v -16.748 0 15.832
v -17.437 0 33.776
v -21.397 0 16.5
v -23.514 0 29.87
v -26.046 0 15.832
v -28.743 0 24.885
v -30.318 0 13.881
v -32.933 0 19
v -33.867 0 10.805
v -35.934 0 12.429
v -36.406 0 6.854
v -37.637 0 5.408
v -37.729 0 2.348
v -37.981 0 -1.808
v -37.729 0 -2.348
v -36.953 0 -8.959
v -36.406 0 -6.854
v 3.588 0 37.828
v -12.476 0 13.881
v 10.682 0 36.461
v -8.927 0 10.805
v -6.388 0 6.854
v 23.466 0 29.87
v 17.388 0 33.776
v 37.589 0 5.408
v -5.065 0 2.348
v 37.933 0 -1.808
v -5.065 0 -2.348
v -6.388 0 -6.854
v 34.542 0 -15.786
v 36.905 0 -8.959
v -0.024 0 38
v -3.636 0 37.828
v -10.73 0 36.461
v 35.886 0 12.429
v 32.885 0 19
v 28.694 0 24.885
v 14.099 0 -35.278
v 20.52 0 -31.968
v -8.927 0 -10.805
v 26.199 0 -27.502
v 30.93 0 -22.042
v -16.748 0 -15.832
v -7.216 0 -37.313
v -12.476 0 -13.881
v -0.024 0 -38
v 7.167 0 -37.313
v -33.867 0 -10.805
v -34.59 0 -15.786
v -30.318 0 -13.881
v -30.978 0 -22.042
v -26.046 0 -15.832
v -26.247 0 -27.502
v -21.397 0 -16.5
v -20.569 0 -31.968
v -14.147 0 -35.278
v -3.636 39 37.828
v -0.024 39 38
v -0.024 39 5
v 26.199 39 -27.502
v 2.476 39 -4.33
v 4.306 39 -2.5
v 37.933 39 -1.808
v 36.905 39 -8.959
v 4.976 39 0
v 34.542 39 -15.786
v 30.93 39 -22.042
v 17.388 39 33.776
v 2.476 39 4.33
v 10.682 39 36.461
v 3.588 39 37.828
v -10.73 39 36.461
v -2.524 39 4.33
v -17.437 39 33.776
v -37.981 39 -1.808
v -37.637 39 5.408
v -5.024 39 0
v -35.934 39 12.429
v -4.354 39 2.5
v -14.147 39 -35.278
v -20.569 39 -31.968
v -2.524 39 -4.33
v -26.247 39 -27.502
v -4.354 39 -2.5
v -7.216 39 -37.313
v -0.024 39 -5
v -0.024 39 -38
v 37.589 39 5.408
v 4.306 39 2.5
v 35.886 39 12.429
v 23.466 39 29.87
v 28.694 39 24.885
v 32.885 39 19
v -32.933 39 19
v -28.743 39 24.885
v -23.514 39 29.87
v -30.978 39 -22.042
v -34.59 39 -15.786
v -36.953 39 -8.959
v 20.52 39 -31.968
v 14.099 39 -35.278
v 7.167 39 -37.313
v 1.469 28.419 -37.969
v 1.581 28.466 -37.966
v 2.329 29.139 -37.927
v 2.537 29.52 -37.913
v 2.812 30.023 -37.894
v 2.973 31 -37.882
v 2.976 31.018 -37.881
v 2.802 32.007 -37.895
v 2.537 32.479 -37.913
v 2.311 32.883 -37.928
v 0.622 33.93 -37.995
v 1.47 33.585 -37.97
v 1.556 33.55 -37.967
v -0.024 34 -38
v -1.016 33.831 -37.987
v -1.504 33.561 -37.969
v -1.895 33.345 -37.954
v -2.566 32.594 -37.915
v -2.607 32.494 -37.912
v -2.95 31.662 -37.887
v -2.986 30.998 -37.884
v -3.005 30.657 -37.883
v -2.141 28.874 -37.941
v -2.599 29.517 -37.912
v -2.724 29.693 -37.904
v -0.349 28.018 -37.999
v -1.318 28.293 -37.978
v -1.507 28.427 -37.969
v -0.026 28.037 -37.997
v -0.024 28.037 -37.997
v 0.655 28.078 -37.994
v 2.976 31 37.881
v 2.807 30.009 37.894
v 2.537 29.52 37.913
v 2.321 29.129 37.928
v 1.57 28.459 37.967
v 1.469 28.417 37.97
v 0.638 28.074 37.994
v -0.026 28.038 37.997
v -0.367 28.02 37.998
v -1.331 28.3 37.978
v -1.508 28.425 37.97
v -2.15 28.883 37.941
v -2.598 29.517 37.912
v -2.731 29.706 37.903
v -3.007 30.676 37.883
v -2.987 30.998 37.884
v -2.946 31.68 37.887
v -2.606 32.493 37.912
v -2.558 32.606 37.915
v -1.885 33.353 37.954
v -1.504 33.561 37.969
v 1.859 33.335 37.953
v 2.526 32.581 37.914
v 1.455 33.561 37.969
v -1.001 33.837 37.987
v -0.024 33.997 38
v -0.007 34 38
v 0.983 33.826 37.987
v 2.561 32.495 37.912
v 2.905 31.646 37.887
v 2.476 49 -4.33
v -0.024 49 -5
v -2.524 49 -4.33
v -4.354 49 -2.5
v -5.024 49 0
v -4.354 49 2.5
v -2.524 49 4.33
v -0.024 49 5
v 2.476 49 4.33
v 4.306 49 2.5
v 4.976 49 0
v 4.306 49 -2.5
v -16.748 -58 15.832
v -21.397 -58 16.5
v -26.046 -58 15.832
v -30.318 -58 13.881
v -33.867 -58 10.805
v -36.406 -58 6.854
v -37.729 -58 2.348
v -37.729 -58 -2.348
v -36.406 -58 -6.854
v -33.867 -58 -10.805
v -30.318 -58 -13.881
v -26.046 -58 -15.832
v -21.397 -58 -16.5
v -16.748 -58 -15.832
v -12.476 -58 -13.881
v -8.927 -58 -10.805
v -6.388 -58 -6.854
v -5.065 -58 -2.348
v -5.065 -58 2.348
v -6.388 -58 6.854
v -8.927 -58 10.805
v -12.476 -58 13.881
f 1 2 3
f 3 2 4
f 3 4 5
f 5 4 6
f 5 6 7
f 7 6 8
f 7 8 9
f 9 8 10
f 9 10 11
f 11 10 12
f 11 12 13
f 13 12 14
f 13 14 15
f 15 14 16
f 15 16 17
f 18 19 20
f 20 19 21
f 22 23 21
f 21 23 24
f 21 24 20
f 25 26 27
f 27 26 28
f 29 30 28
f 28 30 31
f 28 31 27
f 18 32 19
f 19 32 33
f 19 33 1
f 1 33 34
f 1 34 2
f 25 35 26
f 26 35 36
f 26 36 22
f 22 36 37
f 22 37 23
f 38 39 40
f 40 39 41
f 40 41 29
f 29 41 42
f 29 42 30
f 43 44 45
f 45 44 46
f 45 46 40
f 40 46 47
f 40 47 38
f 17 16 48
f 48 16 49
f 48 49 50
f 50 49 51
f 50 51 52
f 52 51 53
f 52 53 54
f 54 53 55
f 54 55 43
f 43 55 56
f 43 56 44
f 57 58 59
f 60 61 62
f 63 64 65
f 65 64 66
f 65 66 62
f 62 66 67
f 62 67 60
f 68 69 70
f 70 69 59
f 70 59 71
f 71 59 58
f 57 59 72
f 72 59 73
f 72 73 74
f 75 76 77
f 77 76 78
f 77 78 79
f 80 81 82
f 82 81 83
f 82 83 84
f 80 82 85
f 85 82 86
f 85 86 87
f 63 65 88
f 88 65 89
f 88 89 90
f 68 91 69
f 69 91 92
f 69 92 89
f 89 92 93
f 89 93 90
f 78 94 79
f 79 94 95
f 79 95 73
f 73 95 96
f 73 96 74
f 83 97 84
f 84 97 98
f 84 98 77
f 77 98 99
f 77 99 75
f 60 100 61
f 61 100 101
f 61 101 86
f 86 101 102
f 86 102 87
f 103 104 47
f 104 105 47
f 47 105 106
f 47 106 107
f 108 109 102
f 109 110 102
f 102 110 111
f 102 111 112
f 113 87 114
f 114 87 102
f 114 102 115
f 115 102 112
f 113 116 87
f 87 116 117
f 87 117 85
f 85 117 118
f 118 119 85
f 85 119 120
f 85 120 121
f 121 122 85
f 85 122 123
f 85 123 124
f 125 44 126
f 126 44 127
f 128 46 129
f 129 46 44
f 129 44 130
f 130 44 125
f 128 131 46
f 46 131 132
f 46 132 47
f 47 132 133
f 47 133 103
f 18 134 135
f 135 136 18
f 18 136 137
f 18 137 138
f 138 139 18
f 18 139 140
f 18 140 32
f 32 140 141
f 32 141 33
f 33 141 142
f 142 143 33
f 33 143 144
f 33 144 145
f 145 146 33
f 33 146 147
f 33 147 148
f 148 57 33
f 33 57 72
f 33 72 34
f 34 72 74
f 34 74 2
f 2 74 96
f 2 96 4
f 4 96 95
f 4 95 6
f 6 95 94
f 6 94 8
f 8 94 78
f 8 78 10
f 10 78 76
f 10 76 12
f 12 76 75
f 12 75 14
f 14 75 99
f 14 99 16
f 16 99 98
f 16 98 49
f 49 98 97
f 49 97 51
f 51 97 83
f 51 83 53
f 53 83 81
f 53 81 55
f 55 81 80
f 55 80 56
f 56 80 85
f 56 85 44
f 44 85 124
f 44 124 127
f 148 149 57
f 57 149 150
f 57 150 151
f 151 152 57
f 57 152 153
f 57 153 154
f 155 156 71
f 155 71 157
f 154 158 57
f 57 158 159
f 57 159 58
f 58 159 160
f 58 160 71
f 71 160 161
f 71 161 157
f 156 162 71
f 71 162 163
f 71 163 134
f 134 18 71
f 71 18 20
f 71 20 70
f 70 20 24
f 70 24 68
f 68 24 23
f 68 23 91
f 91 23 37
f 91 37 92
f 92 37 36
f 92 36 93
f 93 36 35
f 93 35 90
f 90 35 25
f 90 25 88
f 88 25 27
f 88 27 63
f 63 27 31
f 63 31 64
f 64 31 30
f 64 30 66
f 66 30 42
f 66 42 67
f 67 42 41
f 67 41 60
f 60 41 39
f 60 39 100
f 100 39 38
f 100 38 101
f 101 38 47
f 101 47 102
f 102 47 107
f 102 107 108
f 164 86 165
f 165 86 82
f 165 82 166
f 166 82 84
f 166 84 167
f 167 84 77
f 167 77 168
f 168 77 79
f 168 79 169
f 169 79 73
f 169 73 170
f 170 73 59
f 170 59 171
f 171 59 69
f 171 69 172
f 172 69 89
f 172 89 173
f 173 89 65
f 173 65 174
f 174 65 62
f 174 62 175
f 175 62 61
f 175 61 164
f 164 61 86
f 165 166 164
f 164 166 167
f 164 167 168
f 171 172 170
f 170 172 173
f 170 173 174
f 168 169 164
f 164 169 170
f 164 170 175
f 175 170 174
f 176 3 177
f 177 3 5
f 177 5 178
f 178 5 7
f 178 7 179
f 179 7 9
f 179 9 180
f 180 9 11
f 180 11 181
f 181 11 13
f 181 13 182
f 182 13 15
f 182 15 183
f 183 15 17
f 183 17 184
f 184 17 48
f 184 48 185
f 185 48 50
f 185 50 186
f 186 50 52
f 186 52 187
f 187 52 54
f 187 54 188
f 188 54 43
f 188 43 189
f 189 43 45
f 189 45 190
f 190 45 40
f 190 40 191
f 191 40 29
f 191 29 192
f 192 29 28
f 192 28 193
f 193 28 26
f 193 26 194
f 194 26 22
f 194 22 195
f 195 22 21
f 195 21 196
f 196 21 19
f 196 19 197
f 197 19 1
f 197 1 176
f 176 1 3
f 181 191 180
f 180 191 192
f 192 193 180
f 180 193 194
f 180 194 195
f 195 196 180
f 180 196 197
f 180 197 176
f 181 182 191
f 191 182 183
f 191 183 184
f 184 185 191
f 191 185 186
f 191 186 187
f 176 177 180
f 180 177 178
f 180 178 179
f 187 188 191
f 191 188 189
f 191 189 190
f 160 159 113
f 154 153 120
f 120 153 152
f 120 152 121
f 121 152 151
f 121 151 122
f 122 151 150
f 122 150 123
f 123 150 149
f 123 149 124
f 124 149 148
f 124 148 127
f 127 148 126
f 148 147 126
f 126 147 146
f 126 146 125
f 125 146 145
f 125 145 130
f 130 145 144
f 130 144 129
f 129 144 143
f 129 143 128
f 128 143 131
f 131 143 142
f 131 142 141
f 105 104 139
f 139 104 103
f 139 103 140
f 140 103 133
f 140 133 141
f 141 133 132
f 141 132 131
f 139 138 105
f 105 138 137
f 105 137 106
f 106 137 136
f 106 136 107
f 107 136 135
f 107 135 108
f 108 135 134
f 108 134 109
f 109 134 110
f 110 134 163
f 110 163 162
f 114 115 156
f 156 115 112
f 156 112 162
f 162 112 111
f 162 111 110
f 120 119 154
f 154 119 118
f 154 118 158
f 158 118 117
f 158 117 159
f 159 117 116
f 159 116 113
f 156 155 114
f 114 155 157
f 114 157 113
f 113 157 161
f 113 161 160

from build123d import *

# Parameters (mm, degrees)
SKETCH_1_R         = 38
EXTRUDE_1_DEPTH    = 39
SKETCH_2_R         = 5
EXTRUDE_2_DEPTH    = 10
SKETCH_6_R         = 16.5
EXTRUDE_6_DEPTH    = 58
SKETCH1_R          = 3
CUT_EXTRUDE1_DEPTH = 50


with BuildPart() as part:
    # Эскиз1 → Вытянуть1 (new body)
    with BuildSketch(Plane(origin=(0, 0, 0), x_dir=(1, 0, 0), z_dir=(0, 1, 0))):
        with Locations(Location((0, 0, 0), (0, 0, 270))):
            Circle(SKETCH_1_R)
    extrude(amount=EXTRUDE_1_DEPTH)

    # Эскиз2 → Вытянуть2 (add)
    with BuildSketch(Plane(origin=(0, 39, 0), x_dir=(1, 0, 0), z_dir=(0, 1, 0))):
        with Locations(Location((0, 0, 0), (0, 0, 270))):
            Circle(SKETCH_2_R)
    extrude(amount=EXTRUDE_2_DEPTH)

    # Эскиз6 → Вытянуть6 (add)
    with BuildSketch(Plane.XZ):
        with Locations(Location((-21.372740523, 0, 0), (0, 0, 90))):
            Circle(SKETCH_6_R)
    extrude(amount=EXTRUDE_6_DEPTH)

    # Sketch1 → Cut-Extrude1 (cut, symmetric)
    with BuildSketch(Plane.XY):
        with Locations((0, 31)):
            Circle(SKETCH1_R)
    extrude(amount=CUT_EXTRUDE1_DEPTH, both=True, mode=Mode.SUBTRACT)


solid = part.part
